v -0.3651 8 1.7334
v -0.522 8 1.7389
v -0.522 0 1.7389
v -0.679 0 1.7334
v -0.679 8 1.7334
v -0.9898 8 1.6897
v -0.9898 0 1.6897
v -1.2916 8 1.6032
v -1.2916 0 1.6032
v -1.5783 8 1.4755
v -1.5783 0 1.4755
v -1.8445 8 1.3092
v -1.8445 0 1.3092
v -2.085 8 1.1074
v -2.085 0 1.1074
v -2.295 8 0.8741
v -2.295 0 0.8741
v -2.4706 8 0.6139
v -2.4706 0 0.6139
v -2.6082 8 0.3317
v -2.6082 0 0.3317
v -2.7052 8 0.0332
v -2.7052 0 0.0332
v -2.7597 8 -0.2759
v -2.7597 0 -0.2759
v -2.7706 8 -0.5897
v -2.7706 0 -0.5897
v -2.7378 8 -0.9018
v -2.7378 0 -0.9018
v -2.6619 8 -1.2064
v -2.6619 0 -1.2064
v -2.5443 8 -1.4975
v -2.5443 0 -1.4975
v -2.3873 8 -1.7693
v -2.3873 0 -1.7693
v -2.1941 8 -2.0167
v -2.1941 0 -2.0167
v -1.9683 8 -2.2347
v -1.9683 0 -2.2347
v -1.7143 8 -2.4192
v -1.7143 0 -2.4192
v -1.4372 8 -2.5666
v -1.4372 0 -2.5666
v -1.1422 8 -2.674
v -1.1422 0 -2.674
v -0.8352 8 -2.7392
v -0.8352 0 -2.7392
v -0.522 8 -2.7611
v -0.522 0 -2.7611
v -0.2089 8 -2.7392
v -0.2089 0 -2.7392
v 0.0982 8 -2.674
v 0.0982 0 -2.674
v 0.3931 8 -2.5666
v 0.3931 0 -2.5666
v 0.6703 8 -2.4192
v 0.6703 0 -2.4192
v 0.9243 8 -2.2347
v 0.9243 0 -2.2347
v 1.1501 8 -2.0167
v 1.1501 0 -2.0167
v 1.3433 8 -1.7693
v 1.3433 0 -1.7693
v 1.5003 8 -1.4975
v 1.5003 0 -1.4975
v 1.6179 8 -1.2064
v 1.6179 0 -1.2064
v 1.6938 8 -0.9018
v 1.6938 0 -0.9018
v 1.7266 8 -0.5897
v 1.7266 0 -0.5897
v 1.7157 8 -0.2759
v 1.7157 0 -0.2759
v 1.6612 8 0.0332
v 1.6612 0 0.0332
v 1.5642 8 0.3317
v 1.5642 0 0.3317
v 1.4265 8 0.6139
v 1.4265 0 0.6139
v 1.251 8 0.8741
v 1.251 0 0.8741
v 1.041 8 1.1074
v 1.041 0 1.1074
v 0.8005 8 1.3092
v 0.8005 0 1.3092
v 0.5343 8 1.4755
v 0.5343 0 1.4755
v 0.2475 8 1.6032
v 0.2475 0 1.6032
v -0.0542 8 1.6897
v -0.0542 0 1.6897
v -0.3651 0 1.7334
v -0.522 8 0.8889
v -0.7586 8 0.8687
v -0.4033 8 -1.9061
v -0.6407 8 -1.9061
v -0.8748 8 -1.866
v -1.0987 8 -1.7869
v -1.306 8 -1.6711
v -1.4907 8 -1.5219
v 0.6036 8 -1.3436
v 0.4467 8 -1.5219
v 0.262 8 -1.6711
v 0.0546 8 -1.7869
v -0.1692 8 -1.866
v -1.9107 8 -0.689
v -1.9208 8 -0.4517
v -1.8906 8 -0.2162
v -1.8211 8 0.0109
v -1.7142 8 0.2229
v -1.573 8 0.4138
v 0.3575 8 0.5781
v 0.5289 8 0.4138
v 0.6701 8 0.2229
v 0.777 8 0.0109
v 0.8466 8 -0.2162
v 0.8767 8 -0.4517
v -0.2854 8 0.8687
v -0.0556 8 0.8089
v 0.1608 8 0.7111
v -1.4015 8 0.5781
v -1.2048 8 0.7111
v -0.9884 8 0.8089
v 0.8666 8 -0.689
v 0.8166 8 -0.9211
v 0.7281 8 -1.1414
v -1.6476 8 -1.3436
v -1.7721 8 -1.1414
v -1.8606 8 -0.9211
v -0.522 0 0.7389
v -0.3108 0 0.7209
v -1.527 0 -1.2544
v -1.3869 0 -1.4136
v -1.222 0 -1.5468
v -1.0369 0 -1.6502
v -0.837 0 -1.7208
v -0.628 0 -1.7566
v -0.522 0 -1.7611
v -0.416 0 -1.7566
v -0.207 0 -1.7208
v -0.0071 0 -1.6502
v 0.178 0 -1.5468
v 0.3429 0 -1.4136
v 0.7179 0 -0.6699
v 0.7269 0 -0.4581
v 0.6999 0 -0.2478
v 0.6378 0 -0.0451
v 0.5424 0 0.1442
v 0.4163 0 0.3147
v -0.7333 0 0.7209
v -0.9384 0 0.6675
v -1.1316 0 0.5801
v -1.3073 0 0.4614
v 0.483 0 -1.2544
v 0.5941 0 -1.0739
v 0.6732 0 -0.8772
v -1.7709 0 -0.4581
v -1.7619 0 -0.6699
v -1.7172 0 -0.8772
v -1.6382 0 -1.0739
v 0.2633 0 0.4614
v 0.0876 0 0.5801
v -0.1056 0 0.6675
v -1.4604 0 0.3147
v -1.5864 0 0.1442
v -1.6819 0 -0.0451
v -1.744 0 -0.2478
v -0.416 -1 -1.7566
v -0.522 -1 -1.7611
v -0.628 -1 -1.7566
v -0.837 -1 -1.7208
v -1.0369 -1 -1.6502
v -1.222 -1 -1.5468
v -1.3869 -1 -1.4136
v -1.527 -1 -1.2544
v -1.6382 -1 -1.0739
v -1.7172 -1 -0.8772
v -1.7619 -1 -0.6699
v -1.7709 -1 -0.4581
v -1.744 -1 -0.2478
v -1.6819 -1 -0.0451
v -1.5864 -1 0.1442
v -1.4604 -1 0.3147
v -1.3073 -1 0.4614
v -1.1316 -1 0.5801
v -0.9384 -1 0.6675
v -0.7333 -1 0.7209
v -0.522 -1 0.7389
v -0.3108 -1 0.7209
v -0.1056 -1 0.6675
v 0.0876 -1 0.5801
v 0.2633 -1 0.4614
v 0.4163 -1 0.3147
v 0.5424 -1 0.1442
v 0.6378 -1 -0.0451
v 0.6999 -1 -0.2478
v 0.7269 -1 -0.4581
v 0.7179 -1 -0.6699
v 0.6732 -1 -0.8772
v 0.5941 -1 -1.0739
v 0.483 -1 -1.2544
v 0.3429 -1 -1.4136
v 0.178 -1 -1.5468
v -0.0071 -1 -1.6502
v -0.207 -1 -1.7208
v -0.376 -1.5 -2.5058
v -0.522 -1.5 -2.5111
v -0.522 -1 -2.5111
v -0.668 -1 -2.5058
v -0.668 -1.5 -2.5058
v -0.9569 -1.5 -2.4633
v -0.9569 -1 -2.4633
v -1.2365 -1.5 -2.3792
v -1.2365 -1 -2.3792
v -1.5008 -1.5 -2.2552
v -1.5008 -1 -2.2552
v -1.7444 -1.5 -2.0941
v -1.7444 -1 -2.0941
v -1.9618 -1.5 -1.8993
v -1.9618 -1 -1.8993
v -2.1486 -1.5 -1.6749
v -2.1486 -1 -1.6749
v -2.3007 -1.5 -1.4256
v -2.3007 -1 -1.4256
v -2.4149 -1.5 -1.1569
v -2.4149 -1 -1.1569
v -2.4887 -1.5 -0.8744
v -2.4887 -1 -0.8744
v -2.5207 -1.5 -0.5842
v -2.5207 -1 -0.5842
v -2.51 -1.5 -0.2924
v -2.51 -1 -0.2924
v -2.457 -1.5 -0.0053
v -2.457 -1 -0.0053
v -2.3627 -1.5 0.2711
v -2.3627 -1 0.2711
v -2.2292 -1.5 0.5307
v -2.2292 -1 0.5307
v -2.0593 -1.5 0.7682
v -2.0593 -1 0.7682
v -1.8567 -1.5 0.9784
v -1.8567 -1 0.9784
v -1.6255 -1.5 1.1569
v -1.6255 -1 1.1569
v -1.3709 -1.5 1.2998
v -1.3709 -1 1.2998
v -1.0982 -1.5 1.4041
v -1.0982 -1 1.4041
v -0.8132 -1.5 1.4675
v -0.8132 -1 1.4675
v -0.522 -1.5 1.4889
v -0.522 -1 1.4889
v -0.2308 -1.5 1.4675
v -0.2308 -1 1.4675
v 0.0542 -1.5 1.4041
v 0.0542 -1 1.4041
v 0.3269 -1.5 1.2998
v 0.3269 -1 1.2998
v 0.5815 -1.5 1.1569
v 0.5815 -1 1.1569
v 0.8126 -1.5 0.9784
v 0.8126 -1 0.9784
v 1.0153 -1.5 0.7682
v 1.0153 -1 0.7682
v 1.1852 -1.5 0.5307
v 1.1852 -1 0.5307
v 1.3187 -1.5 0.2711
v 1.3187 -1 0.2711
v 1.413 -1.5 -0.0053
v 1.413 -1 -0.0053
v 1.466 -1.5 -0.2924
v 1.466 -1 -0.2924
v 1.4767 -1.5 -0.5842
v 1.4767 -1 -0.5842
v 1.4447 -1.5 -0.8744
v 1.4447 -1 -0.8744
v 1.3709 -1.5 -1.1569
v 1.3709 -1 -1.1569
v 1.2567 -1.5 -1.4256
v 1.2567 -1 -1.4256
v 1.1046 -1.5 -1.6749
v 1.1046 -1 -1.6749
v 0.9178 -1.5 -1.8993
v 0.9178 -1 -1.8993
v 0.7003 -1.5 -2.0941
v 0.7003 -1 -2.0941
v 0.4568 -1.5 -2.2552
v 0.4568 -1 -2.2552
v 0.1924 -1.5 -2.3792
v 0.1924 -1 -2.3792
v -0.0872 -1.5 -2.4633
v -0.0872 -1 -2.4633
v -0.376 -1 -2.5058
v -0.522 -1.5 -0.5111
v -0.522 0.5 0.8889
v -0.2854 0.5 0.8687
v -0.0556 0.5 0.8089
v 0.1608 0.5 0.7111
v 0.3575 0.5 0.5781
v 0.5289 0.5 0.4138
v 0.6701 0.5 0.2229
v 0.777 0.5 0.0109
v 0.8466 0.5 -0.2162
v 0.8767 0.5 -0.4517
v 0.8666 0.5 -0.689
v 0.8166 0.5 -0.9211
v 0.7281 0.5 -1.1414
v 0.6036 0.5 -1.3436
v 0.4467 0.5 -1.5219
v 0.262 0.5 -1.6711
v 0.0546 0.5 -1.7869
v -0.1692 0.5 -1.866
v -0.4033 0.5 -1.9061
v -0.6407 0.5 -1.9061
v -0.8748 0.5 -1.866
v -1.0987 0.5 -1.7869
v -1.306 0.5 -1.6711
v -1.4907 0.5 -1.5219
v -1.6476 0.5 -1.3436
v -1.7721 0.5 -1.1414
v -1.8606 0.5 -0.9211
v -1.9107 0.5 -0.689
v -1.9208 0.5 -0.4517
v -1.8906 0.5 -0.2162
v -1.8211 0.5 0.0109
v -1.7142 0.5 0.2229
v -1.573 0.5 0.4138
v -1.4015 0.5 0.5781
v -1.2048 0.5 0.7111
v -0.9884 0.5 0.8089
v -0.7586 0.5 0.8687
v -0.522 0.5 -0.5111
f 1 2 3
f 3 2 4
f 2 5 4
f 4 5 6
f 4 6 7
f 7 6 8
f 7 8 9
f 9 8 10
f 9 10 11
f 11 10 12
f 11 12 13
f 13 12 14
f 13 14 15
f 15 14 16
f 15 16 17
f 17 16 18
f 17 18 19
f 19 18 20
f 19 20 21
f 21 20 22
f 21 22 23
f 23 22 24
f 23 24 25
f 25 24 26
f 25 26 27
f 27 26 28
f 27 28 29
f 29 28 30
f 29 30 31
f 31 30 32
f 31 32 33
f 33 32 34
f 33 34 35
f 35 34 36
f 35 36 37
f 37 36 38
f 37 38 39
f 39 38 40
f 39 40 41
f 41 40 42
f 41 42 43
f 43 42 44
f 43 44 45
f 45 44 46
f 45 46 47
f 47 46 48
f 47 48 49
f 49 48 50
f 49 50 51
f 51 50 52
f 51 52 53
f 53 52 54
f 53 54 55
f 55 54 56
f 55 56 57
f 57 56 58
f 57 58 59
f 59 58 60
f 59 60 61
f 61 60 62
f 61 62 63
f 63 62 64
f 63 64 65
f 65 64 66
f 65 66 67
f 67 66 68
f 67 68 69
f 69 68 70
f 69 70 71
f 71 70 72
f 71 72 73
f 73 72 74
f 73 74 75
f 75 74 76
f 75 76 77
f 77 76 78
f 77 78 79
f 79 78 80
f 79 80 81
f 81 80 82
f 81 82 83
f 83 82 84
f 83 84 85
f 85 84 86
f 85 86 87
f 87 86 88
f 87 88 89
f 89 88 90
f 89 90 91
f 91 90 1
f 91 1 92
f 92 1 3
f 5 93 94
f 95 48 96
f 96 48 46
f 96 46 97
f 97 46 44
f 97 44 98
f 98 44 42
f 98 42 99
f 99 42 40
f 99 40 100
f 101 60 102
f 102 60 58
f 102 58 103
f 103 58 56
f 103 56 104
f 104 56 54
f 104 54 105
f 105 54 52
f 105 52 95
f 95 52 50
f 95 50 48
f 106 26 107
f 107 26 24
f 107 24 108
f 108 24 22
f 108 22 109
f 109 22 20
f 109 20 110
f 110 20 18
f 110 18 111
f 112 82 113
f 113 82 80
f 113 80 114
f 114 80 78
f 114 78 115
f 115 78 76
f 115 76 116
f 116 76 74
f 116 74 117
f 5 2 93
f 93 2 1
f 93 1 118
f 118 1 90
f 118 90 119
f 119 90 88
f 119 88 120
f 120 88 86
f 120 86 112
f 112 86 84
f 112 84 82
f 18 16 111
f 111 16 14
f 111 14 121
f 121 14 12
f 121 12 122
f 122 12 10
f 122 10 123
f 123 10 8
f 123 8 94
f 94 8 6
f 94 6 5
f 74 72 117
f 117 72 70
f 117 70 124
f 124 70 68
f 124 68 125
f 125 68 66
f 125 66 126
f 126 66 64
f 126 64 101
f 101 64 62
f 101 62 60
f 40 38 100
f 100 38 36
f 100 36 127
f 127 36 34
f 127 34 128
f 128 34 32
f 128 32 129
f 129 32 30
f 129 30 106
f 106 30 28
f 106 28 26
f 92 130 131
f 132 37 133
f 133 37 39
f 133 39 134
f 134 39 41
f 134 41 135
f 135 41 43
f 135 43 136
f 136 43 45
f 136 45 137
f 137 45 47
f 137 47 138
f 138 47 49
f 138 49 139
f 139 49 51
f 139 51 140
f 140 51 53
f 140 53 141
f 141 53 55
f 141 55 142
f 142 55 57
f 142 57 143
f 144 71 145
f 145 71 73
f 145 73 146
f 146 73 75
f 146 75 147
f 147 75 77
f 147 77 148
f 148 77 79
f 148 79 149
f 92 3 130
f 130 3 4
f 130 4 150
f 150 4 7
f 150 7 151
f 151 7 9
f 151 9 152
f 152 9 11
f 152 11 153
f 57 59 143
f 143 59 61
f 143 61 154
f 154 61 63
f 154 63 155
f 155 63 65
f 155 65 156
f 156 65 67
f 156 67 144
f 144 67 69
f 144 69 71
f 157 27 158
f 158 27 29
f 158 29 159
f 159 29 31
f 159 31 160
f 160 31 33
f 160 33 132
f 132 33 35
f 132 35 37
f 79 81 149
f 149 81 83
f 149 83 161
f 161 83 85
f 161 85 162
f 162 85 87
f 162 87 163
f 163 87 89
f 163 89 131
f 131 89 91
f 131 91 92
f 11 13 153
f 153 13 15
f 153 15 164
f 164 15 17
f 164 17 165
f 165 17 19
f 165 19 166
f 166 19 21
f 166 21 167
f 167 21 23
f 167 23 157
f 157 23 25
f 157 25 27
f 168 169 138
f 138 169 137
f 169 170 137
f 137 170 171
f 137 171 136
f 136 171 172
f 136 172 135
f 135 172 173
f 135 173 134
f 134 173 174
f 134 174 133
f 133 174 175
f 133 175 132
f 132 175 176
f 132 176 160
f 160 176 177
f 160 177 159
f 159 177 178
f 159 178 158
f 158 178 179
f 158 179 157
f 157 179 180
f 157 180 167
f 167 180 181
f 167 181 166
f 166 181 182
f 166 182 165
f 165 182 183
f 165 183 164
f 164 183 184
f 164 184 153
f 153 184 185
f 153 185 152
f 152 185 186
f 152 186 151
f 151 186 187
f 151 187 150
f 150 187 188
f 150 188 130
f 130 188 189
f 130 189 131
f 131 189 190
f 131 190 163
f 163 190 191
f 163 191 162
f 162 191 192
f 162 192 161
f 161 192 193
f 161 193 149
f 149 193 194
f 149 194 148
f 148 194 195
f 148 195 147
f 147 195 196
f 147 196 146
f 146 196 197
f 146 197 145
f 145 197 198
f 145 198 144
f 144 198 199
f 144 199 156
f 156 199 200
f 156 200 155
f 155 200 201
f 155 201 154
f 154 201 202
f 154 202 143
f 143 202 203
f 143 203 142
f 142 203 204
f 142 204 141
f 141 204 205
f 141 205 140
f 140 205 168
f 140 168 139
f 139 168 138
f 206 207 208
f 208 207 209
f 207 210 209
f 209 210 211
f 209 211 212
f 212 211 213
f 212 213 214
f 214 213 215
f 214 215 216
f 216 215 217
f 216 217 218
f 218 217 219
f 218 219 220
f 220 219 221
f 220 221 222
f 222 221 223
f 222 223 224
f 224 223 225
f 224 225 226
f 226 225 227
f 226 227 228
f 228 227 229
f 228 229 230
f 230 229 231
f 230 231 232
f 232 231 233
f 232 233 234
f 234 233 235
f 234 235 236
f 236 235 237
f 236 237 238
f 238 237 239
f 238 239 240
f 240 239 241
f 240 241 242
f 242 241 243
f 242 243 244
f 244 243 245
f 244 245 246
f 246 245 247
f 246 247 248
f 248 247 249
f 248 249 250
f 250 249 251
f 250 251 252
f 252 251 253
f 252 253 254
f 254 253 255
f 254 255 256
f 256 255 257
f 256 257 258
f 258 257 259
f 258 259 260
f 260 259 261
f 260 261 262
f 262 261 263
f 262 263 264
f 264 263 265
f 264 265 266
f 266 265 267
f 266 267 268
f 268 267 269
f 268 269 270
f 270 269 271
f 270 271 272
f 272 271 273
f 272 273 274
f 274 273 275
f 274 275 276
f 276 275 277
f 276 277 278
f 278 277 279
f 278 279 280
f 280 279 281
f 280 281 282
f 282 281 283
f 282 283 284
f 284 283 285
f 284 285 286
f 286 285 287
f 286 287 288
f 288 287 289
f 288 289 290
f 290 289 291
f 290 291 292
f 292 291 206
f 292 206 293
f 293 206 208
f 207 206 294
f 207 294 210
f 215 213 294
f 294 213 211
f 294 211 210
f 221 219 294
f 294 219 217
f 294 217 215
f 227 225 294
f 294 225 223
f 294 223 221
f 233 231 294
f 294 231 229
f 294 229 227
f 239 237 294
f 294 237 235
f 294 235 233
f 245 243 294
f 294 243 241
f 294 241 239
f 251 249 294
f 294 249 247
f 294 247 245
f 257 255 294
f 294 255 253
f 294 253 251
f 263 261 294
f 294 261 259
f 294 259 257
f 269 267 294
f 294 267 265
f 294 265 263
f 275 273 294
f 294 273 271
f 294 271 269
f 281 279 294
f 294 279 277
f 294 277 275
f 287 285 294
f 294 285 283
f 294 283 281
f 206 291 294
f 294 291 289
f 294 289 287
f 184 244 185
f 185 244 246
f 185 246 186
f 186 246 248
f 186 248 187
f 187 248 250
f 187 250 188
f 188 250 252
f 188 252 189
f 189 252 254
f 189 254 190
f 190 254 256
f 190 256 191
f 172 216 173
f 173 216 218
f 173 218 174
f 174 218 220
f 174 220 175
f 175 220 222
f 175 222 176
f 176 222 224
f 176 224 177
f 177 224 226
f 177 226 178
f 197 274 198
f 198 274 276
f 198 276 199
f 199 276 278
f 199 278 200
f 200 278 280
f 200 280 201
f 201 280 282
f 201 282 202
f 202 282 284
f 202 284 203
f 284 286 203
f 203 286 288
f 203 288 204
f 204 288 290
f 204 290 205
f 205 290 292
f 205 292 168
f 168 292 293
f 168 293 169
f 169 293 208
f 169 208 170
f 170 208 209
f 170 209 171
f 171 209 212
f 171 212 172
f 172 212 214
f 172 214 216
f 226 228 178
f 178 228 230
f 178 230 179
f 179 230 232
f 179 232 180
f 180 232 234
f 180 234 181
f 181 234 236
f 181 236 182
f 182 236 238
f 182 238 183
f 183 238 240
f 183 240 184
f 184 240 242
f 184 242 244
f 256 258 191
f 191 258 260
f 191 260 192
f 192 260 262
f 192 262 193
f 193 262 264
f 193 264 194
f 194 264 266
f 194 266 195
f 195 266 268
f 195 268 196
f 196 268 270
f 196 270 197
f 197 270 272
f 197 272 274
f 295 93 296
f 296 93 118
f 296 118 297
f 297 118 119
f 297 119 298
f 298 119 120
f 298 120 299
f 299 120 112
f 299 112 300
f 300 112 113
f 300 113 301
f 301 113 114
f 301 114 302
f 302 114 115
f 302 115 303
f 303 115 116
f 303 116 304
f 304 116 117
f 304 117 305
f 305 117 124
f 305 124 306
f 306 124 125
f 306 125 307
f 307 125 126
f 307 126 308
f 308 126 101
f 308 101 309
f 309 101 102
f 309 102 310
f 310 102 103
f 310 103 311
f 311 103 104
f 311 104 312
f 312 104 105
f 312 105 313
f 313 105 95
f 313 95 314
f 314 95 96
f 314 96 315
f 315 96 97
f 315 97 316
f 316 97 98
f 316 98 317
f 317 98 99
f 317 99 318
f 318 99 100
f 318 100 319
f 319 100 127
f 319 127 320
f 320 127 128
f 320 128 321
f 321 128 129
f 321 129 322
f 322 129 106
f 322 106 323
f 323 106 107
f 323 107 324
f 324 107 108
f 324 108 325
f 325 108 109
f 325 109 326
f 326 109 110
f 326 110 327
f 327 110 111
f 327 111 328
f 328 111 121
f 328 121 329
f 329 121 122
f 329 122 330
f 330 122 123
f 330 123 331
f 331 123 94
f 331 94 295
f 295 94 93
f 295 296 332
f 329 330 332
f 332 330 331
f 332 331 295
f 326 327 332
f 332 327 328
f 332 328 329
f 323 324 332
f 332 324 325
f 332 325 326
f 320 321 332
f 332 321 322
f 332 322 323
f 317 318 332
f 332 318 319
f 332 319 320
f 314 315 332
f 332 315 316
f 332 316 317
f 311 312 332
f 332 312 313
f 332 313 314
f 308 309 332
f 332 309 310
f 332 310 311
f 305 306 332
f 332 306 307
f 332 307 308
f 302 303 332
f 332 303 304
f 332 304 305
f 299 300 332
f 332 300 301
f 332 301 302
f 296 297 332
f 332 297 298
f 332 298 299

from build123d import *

# Parameters (mm, degrees)
SKETCH1_R           = 2.25
BOSS_EXTRUDE1_DEPTH = 8
SKETCH1_3_R         = 1.375
BOSS_EXTRUDE2_DEPTH = 1
SKETCH5_R           = 1.25
BOSS_EXTRUDE3_DEPTH = 1
SKETCH6_R           = 2
BOSS_EXTRUDE4_DEPTH = 0.5
SKETCH12_R          = 1.4
CUT_EXTRUDE1_DEPTH  = 7.5


with BuildPart() as part:
    # Sketch1 → Boss-Extrude1 (new body)
    with BuildSketch(Plane(origin=(0, 0, 0), x_dir=(1, 0, 0), z_dir=(0, 1, 0))):
        with Locations((-0.522013312, 0.511138034)):
            Circle(SKETCH1_R)
    extrude(amount=BOSS_EXTRUDE1_DEPTH)

    # Sketch1<3> → Boss-Extrude2 (add)
    with BuildSketch(Plane(origin=(0, 0, 0), x_dir=(1, 0, 0), z_dir=(0, 1, 0))):
        with Locations((-0.522013312, 0.511138034)):
            Circle(SKETCH1_3_R)
    extrude(amount=BOSS_EXTRUDE2_DEPTH)

    # Sketch5 → Boss-Extrude3 (add)
    with BuildSketch(Plane.XZ):
        with Locations((-0.522013312, -0.511138034)):
            Circle(SKETCH5_R)
    extrude(amount=BOSS_EXTRUDE3_DEPTH)

    # Sketch6 → Boss-Extrude4 (add)
    with BuildSketch(Plane.XZ.offset(1)):
        with Locations((-0.522013312, -0.511138034)):
            Circle(SKETCH6_R)
    extrude(amount=BOSS_EXTRUDE4_DEPTH)

    # Sketch12 → Cut-Extrude1 (cut)
    with BuildSketch(Plane(origin=(0, 8, 0), x_dir=(1, 0, 0), z_dir=(0, 1, 0))):
        with Locations((-0.522013312, 0.511138034)):
            Circle(SKETCH12_R)
    extrude(amount=-CUT_EXTRUDE1_DEPTH, mode=Mode.SUBTRACT)


solid = part.part
